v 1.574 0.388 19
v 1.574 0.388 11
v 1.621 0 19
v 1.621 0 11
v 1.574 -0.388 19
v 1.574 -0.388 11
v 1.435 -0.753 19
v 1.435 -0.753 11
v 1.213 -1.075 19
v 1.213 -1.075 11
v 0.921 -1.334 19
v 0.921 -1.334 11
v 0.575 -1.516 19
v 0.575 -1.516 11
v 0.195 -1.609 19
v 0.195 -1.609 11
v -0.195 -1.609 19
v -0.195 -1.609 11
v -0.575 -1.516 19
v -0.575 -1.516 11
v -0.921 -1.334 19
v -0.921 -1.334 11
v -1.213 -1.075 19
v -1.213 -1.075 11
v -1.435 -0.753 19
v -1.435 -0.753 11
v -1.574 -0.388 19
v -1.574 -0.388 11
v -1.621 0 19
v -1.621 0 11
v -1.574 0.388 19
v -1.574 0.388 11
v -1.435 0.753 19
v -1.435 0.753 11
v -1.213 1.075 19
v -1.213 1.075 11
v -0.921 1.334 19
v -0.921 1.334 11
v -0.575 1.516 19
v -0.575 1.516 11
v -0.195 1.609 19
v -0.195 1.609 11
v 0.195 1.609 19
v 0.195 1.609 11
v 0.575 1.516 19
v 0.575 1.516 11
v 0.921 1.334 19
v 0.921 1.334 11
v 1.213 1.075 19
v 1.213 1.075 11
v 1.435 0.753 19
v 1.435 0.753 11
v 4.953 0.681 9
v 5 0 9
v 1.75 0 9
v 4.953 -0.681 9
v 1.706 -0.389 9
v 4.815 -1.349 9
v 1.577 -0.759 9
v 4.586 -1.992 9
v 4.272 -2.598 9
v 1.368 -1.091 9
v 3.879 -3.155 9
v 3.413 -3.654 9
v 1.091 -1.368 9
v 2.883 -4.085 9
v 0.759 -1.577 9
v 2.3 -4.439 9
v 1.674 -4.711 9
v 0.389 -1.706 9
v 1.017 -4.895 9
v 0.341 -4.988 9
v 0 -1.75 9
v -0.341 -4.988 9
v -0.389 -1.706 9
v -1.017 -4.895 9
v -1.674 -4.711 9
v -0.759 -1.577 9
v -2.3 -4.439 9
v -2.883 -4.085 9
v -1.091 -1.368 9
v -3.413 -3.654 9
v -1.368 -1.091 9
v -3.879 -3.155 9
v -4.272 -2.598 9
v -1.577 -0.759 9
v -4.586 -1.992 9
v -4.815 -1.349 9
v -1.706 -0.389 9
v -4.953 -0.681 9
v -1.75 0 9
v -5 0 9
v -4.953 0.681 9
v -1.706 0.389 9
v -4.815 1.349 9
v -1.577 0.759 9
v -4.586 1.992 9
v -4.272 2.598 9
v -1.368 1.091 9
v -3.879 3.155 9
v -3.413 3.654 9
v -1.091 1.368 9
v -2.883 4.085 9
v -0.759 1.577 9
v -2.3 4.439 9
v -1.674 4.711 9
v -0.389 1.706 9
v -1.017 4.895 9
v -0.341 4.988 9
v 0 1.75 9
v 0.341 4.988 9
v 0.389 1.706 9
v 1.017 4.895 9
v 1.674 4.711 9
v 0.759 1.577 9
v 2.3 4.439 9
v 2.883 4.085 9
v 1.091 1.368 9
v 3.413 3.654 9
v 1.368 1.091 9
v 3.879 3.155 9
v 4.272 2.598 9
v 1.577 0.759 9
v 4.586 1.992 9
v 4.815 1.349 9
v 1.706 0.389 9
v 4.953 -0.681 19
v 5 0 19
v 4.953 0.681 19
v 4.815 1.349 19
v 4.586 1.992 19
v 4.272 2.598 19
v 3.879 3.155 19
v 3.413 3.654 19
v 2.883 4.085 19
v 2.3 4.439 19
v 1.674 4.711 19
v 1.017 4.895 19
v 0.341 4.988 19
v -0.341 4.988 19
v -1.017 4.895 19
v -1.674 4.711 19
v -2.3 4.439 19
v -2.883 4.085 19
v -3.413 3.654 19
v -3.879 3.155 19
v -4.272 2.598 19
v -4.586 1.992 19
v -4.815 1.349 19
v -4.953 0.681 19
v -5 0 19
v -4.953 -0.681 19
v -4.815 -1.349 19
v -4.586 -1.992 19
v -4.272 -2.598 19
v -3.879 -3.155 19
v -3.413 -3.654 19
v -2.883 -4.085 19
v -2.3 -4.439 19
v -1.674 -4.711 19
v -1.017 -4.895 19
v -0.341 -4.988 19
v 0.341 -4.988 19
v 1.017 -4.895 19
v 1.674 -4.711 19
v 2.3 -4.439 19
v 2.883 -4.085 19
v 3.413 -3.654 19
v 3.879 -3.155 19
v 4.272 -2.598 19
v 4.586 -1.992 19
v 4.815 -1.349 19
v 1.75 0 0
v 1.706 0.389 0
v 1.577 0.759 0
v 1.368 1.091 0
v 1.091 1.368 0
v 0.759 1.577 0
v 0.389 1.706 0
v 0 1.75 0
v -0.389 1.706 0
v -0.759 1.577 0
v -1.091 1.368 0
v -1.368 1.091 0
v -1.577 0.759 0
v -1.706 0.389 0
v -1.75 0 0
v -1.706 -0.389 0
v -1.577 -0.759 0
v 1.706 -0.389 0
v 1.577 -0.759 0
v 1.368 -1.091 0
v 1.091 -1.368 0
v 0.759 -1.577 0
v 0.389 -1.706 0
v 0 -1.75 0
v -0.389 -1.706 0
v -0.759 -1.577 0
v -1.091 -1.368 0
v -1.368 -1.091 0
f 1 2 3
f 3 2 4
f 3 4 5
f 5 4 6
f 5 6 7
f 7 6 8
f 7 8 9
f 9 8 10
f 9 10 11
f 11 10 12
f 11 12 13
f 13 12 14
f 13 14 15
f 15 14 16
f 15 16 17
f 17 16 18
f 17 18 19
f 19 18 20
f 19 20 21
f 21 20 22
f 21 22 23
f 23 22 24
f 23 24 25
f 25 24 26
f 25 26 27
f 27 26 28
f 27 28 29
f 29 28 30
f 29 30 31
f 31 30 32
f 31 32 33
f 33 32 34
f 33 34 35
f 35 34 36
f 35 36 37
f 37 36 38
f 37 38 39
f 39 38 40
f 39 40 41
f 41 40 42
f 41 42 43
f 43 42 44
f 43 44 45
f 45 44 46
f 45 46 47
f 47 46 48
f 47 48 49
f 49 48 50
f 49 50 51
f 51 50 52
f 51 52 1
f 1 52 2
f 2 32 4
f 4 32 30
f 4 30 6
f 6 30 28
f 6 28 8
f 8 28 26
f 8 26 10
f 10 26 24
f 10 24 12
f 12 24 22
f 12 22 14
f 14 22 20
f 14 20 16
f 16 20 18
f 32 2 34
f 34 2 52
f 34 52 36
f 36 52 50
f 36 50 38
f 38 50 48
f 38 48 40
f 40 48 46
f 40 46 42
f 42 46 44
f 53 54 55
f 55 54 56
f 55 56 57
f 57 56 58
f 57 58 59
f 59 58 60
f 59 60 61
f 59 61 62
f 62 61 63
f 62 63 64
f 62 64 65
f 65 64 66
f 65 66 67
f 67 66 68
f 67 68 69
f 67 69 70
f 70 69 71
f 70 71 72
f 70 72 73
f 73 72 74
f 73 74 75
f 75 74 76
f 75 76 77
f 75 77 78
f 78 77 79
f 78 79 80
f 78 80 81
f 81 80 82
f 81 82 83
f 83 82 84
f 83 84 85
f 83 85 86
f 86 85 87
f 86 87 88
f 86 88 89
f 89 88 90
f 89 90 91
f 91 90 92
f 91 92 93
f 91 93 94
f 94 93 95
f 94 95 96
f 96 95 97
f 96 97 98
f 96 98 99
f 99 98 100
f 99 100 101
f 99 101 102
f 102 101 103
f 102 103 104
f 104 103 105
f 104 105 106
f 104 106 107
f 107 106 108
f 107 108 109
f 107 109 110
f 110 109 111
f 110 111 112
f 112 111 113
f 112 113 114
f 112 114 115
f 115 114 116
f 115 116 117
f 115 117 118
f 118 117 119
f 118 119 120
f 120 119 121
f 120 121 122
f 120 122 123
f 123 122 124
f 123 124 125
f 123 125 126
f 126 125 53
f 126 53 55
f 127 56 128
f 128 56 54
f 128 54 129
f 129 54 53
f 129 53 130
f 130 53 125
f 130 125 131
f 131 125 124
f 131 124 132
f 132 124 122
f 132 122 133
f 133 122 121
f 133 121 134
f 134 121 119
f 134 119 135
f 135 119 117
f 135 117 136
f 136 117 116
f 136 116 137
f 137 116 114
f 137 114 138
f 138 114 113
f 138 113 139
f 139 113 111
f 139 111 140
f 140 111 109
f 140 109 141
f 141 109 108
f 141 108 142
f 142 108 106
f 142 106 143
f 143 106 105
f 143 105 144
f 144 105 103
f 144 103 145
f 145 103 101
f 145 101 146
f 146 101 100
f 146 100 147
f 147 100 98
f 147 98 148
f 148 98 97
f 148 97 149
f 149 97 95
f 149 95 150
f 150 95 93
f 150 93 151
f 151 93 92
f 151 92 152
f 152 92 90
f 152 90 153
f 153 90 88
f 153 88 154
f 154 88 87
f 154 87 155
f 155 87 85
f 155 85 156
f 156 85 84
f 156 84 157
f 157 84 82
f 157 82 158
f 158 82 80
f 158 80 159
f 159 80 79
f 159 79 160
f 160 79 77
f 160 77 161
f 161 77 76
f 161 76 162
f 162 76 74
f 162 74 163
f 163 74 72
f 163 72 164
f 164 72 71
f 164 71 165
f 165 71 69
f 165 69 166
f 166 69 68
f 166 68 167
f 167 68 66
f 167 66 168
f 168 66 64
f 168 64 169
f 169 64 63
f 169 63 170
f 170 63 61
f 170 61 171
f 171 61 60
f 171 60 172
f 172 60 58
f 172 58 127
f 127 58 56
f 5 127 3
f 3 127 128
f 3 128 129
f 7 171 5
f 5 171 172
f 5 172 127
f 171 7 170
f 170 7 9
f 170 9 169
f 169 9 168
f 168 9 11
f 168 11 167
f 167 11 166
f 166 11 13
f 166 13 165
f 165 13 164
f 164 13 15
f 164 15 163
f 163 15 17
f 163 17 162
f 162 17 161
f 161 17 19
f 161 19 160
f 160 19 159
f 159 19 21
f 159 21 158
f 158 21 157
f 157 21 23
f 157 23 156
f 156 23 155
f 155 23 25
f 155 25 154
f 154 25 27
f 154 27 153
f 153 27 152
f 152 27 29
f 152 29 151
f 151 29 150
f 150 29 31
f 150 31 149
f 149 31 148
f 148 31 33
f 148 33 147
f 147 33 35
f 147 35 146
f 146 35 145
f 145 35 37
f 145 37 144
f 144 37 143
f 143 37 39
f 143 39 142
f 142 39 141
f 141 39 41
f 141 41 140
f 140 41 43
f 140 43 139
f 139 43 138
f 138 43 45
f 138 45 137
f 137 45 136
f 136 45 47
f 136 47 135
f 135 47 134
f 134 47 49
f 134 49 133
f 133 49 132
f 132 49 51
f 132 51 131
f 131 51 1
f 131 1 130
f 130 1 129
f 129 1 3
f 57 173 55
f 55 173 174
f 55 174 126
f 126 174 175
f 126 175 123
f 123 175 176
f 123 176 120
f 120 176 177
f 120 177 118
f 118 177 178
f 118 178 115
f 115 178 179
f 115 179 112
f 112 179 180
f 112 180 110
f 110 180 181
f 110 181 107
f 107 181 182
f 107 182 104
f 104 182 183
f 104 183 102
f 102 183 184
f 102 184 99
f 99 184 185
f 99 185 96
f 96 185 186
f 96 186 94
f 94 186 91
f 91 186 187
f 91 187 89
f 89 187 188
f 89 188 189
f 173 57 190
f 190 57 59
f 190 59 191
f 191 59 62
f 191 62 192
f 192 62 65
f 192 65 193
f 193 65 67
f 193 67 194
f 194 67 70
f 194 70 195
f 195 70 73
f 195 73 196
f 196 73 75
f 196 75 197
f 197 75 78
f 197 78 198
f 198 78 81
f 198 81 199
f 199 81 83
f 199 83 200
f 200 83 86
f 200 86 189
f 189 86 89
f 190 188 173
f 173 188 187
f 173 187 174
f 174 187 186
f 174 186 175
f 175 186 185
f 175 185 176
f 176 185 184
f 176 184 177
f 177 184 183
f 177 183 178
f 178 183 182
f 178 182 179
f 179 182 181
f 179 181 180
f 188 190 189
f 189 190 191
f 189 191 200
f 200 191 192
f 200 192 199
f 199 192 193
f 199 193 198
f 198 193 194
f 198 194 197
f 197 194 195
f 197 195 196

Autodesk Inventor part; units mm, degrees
ref_plane "YZ Plane" through (0, 0, 0) normal (1, 0, 0) x (0, 1, 0)
ref_plane "XZ Plane" through (0, 0, 0) normal (0, 1, 0) x (-1, 0, 0)
ref_plane "XY Plane" through (0, 0, 0) normal (0, 0, 1) x (1, 0, 0)
sketch "Sketch7" plane through (0, 0, 0) normal (0, 0, 1) x (1, 0, 0)
  circle A0 centre (0, 0) radius 1.75
  dimension "d19" = 3.5
extrude "Extrusion6" add sketch "Sketch7" along normal blind 9
sketch "Sketch8" plane through (0, 0, 9) normal (0, 0, 1) x (1, 0, 0)
  circle A0 centre (0, 0) radius 5
  dimension "d22" = 10
extrude "Extrusion7" add sketch "Sketch8" along normal blind 10
sketch "Sketch9" plane through (0, 0, 19) normal (0, 0, 1) x (1, 0, 0)
  point P0 (0, 0)
  point P1 (0, 0)
hole "Hole1" at (0, 0, 19) direction (0, 0, -1) diameter 3.242 depth 8 thread size "M4x0.7" class "6H" standard "ANSI Metric M Profile"
properties part number "Elbow_Parallel_Rod_V1"
